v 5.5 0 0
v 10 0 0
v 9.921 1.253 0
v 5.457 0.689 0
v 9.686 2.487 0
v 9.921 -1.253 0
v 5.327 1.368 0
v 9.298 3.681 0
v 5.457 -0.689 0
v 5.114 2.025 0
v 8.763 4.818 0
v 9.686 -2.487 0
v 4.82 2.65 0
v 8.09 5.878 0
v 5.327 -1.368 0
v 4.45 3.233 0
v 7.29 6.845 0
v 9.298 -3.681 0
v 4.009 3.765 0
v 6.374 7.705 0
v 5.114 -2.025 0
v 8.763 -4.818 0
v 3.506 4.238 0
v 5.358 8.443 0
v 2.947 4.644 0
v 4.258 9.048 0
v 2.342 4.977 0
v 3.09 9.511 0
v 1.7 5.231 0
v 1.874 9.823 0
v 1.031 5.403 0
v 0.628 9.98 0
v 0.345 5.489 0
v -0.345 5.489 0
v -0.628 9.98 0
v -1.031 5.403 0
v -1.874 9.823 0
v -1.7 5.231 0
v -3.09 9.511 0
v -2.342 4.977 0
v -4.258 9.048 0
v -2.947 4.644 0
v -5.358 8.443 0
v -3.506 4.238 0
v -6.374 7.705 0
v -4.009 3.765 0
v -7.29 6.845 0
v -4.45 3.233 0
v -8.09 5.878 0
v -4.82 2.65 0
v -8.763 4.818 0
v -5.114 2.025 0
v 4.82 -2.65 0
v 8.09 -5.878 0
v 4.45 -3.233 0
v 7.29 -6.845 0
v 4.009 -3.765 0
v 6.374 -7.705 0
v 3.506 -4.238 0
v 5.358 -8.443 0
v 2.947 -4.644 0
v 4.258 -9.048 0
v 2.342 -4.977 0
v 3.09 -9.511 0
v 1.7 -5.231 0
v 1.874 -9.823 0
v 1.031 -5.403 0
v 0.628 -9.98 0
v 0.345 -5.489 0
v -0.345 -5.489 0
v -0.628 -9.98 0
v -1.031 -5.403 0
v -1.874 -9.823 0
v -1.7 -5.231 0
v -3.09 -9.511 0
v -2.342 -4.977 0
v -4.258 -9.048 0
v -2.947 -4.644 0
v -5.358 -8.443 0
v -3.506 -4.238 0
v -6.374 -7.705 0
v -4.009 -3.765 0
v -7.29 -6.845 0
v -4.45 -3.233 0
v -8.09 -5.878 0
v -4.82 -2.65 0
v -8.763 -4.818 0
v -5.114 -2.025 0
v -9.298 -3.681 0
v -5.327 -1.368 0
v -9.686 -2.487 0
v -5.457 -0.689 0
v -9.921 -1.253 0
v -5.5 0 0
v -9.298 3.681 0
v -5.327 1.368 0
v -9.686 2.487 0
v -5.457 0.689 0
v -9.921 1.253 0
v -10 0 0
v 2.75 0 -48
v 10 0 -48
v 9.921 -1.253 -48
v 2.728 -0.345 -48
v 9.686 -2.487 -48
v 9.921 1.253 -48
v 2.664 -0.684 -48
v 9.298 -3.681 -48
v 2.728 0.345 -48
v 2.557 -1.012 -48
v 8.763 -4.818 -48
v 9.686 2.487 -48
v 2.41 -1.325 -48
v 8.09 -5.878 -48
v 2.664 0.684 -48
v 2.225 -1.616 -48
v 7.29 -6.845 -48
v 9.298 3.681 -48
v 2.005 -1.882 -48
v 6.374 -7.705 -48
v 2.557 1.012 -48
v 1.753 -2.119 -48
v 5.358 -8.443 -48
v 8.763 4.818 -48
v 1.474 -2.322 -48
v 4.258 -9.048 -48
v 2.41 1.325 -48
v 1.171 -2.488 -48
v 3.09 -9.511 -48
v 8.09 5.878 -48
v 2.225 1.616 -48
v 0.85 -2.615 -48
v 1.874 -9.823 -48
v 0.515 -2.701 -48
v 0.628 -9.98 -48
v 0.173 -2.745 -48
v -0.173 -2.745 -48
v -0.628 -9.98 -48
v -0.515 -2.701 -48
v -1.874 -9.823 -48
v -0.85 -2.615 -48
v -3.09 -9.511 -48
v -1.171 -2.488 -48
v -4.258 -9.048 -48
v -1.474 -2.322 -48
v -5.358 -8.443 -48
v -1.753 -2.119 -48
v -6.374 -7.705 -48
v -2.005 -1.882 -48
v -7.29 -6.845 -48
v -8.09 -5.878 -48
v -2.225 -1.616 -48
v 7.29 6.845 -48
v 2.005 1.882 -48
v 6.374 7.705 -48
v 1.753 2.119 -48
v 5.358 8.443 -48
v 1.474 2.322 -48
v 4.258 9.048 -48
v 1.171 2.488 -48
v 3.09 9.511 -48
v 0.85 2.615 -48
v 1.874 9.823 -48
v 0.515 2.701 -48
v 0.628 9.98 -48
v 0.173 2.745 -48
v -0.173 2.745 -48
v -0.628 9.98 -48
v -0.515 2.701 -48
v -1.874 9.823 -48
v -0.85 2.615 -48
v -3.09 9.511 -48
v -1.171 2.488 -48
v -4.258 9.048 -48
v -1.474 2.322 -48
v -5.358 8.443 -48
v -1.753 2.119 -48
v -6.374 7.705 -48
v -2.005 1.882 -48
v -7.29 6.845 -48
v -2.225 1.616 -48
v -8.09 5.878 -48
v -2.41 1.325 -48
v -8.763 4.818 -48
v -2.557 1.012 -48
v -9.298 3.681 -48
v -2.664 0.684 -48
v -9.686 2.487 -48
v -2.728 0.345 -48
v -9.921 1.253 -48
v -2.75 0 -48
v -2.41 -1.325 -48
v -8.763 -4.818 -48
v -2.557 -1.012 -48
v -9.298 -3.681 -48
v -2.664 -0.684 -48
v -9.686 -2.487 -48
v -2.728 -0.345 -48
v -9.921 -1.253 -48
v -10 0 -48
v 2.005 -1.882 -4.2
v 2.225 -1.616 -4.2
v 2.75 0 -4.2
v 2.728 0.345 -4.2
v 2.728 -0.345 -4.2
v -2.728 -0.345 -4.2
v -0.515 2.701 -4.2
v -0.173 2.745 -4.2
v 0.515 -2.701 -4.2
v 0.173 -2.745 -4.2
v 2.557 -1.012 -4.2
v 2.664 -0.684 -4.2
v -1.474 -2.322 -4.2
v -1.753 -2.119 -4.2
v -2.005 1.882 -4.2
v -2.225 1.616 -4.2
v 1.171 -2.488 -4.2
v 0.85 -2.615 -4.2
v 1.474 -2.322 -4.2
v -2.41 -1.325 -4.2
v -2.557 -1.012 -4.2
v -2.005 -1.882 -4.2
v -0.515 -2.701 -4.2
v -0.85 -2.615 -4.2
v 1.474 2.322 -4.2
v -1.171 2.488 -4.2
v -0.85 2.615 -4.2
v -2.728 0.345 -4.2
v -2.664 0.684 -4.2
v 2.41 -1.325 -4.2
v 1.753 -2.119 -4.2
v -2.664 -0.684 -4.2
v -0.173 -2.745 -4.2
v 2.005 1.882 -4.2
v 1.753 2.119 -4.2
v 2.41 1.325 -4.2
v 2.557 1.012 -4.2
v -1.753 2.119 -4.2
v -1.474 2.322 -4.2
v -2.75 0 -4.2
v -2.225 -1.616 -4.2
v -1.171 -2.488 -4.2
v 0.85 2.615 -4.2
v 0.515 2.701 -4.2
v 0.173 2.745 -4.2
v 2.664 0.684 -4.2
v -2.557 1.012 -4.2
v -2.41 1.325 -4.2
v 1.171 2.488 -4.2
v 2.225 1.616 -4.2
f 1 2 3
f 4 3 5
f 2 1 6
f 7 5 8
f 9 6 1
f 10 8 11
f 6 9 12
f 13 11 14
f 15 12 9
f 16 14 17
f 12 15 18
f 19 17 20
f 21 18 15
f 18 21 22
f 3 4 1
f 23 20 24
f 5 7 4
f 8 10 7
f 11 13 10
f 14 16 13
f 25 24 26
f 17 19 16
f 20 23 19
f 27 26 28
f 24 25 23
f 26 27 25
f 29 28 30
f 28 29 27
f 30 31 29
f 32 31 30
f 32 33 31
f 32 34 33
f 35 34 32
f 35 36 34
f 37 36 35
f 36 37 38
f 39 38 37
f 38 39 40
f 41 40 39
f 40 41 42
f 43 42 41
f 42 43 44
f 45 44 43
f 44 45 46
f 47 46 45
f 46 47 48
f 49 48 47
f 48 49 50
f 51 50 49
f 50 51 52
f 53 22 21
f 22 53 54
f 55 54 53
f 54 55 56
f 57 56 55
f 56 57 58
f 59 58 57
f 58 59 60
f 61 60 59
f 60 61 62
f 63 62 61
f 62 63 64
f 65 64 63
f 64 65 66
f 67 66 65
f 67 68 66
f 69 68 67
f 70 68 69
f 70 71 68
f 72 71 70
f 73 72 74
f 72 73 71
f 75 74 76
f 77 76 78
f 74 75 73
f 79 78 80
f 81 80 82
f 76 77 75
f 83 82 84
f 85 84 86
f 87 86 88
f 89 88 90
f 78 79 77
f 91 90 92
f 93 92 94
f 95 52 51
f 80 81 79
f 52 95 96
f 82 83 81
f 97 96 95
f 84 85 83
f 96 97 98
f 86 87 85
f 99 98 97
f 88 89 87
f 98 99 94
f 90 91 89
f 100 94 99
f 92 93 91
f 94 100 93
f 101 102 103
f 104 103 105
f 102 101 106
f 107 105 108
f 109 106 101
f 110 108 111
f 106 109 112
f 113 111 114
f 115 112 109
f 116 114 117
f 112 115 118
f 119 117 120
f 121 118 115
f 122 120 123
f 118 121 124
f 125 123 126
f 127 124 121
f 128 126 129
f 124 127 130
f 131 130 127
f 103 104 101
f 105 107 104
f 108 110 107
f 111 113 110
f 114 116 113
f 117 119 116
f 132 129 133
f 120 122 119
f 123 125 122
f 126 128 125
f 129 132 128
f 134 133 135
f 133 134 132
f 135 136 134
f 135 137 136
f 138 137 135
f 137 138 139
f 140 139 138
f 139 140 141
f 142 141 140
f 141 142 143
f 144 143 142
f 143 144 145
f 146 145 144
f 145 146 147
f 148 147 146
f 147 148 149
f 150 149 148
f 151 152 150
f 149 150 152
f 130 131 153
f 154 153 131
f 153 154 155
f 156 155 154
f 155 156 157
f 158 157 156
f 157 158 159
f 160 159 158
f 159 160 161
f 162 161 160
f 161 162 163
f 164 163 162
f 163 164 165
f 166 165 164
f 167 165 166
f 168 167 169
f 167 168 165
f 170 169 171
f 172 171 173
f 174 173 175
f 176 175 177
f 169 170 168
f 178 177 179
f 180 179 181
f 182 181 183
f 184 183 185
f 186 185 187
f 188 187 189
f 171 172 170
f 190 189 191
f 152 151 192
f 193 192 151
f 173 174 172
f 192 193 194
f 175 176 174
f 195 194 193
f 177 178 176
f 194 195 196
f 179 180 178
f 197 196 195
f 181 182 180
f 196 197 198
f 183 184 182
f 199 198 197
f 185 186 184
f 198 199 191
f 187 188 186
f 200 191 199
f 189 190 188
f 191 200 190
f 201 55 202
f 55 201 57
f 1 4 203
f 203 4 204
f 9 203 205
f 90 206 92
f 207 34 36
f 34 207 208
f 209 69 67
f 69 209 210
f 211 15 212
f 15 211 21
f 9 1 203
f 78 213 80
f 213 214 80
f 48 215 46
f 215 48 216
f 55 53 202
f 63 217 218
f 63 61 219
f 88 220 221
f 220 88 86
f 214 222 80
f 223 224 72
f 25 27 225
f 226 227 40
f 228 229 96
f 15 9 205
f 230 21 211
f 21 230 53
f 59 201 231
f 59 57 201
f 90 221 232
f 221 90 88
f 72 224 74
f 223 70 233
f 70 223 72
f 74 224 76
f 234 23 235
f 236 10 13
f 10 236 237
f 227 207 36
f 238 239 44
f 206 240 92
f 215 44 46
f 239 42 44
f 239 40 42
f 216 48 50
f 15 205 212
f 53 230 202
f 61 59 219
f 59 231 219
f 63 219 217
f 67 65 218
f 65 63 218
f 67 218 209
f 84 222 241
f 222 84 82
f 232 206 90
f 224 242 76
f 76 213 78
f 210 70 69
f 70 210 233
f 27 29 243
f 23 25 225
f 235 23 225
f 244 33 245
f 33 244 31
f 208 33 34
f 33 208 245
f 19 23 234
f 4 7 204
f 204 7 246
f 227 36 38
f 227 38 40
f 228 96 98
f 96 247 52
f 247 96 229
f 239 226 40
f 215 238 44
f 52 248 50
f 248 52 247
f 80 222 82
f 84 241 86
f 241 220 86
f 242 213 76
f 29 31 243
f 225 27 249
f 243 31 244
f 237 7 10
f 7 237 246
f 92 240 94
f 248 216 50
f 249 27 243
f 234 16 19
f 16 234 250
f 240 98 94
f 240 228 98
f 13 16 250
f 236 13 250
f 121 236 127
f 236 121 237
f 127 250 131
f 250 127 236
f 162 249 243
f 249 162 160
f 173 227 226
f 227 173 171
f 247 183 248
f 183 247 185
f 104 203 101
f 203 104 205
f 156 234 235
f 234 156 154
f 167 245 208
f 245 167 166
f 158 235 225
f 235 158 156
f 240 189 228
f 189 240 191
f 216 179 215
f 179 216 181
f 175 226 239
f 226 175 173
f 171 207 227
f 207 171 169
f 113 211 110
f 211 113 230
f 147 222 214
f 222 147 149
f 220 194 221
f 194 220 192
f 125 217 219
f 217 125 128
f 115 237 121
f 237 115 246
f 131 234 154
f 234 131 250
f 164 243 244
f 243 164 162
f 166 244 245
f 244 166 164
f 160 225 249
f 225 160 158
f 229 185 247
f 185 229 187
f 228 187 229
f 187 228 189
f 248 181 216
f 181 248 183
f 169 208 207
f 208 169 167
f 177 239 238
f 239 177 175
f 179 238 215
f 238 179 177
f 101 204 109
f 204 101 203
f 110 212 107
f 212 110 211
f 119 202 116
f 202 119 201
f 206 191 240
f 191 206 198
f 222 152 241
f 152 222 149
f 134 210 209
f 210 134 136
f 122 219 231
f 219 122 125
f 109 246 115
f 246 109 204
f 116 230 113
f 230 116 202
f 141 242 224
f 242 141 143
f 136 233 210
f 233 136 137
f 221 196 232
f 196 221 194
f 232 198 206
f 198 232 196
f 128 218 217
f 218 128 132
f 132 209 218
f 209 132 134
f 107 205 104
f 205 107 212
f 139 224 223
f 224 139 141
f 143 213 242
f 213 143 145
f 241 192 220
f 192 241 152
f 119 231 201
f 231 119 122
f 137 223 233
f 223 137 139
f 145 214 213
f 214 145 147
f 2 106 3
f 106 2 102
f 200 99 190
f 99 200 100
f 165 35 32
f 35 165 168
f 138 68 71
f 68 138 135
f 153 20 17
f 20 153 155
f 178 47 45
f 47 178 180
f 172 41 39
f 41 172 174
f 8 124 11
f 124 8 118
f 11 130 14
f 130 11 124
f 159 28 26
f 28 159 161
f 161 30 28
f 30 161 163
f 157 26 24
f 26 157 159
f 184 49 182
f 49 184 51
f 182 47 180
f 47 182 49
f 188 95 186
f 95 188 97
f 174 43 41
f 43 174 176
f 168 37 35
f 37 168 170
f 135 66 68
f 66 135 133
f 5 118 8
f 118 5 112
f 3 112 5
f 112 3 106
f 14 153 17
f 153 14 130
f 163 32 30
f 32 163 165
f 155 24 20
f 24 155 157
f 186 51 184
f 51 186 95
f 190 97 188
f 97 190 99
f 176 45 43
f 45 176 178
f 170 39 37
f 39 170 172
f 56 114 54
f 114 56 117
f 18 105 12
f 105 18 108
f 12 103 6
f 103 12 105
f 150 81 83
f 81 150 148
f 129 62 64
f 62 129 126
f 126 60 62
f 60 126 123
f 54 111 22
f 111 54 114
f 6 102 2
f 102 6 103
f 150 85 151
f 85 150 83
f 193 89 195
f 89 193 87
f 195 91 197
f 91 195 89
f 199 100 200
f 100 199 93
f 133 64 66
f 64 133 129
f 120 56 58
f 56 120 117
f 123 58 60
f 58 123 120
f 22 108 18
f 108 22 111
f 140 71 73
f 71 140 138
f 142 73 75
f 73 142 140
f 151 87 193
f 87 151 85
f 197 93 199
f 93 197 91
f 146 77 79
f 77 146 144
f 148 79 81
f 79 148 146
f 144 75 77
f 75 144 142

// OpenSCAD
$fn = 50;


difference() {
	union() {
		translate(v = [0, 0, -48.0000000000]) {
			cylinder(h = 48, r = 10.0000000000);
		}
		cylinder(h = 0, r = 13.0000000000);
	}
	union() {
		translate(v = [0, 0, 0]) {
			rotate(a = [0, 0, 0]) {
				difference() {
					union() {
						#translate(v = [0, 0, -48.0000000000]) {
							cylinder(h = 48, r = 2.2500000000);
						}
						#translate(v = [0, 0, -4.2000000000]) {
							cylinder(h = 4.2000000000, r = 10.0000000000, r1 = 2.7500000000, r2 = 5.5000000000);
						}
						#translate(v = [0, 0, -48.0000000000]) {
							cylinder(h = 48, r = 2.7500000000);
						}
						#translate(v = [0, 0, -48.0000000000]) {
							cylinder(h = 48, r = 2.2500000000);
						}
					}
					union();
				}
			}
		}
	}
}
